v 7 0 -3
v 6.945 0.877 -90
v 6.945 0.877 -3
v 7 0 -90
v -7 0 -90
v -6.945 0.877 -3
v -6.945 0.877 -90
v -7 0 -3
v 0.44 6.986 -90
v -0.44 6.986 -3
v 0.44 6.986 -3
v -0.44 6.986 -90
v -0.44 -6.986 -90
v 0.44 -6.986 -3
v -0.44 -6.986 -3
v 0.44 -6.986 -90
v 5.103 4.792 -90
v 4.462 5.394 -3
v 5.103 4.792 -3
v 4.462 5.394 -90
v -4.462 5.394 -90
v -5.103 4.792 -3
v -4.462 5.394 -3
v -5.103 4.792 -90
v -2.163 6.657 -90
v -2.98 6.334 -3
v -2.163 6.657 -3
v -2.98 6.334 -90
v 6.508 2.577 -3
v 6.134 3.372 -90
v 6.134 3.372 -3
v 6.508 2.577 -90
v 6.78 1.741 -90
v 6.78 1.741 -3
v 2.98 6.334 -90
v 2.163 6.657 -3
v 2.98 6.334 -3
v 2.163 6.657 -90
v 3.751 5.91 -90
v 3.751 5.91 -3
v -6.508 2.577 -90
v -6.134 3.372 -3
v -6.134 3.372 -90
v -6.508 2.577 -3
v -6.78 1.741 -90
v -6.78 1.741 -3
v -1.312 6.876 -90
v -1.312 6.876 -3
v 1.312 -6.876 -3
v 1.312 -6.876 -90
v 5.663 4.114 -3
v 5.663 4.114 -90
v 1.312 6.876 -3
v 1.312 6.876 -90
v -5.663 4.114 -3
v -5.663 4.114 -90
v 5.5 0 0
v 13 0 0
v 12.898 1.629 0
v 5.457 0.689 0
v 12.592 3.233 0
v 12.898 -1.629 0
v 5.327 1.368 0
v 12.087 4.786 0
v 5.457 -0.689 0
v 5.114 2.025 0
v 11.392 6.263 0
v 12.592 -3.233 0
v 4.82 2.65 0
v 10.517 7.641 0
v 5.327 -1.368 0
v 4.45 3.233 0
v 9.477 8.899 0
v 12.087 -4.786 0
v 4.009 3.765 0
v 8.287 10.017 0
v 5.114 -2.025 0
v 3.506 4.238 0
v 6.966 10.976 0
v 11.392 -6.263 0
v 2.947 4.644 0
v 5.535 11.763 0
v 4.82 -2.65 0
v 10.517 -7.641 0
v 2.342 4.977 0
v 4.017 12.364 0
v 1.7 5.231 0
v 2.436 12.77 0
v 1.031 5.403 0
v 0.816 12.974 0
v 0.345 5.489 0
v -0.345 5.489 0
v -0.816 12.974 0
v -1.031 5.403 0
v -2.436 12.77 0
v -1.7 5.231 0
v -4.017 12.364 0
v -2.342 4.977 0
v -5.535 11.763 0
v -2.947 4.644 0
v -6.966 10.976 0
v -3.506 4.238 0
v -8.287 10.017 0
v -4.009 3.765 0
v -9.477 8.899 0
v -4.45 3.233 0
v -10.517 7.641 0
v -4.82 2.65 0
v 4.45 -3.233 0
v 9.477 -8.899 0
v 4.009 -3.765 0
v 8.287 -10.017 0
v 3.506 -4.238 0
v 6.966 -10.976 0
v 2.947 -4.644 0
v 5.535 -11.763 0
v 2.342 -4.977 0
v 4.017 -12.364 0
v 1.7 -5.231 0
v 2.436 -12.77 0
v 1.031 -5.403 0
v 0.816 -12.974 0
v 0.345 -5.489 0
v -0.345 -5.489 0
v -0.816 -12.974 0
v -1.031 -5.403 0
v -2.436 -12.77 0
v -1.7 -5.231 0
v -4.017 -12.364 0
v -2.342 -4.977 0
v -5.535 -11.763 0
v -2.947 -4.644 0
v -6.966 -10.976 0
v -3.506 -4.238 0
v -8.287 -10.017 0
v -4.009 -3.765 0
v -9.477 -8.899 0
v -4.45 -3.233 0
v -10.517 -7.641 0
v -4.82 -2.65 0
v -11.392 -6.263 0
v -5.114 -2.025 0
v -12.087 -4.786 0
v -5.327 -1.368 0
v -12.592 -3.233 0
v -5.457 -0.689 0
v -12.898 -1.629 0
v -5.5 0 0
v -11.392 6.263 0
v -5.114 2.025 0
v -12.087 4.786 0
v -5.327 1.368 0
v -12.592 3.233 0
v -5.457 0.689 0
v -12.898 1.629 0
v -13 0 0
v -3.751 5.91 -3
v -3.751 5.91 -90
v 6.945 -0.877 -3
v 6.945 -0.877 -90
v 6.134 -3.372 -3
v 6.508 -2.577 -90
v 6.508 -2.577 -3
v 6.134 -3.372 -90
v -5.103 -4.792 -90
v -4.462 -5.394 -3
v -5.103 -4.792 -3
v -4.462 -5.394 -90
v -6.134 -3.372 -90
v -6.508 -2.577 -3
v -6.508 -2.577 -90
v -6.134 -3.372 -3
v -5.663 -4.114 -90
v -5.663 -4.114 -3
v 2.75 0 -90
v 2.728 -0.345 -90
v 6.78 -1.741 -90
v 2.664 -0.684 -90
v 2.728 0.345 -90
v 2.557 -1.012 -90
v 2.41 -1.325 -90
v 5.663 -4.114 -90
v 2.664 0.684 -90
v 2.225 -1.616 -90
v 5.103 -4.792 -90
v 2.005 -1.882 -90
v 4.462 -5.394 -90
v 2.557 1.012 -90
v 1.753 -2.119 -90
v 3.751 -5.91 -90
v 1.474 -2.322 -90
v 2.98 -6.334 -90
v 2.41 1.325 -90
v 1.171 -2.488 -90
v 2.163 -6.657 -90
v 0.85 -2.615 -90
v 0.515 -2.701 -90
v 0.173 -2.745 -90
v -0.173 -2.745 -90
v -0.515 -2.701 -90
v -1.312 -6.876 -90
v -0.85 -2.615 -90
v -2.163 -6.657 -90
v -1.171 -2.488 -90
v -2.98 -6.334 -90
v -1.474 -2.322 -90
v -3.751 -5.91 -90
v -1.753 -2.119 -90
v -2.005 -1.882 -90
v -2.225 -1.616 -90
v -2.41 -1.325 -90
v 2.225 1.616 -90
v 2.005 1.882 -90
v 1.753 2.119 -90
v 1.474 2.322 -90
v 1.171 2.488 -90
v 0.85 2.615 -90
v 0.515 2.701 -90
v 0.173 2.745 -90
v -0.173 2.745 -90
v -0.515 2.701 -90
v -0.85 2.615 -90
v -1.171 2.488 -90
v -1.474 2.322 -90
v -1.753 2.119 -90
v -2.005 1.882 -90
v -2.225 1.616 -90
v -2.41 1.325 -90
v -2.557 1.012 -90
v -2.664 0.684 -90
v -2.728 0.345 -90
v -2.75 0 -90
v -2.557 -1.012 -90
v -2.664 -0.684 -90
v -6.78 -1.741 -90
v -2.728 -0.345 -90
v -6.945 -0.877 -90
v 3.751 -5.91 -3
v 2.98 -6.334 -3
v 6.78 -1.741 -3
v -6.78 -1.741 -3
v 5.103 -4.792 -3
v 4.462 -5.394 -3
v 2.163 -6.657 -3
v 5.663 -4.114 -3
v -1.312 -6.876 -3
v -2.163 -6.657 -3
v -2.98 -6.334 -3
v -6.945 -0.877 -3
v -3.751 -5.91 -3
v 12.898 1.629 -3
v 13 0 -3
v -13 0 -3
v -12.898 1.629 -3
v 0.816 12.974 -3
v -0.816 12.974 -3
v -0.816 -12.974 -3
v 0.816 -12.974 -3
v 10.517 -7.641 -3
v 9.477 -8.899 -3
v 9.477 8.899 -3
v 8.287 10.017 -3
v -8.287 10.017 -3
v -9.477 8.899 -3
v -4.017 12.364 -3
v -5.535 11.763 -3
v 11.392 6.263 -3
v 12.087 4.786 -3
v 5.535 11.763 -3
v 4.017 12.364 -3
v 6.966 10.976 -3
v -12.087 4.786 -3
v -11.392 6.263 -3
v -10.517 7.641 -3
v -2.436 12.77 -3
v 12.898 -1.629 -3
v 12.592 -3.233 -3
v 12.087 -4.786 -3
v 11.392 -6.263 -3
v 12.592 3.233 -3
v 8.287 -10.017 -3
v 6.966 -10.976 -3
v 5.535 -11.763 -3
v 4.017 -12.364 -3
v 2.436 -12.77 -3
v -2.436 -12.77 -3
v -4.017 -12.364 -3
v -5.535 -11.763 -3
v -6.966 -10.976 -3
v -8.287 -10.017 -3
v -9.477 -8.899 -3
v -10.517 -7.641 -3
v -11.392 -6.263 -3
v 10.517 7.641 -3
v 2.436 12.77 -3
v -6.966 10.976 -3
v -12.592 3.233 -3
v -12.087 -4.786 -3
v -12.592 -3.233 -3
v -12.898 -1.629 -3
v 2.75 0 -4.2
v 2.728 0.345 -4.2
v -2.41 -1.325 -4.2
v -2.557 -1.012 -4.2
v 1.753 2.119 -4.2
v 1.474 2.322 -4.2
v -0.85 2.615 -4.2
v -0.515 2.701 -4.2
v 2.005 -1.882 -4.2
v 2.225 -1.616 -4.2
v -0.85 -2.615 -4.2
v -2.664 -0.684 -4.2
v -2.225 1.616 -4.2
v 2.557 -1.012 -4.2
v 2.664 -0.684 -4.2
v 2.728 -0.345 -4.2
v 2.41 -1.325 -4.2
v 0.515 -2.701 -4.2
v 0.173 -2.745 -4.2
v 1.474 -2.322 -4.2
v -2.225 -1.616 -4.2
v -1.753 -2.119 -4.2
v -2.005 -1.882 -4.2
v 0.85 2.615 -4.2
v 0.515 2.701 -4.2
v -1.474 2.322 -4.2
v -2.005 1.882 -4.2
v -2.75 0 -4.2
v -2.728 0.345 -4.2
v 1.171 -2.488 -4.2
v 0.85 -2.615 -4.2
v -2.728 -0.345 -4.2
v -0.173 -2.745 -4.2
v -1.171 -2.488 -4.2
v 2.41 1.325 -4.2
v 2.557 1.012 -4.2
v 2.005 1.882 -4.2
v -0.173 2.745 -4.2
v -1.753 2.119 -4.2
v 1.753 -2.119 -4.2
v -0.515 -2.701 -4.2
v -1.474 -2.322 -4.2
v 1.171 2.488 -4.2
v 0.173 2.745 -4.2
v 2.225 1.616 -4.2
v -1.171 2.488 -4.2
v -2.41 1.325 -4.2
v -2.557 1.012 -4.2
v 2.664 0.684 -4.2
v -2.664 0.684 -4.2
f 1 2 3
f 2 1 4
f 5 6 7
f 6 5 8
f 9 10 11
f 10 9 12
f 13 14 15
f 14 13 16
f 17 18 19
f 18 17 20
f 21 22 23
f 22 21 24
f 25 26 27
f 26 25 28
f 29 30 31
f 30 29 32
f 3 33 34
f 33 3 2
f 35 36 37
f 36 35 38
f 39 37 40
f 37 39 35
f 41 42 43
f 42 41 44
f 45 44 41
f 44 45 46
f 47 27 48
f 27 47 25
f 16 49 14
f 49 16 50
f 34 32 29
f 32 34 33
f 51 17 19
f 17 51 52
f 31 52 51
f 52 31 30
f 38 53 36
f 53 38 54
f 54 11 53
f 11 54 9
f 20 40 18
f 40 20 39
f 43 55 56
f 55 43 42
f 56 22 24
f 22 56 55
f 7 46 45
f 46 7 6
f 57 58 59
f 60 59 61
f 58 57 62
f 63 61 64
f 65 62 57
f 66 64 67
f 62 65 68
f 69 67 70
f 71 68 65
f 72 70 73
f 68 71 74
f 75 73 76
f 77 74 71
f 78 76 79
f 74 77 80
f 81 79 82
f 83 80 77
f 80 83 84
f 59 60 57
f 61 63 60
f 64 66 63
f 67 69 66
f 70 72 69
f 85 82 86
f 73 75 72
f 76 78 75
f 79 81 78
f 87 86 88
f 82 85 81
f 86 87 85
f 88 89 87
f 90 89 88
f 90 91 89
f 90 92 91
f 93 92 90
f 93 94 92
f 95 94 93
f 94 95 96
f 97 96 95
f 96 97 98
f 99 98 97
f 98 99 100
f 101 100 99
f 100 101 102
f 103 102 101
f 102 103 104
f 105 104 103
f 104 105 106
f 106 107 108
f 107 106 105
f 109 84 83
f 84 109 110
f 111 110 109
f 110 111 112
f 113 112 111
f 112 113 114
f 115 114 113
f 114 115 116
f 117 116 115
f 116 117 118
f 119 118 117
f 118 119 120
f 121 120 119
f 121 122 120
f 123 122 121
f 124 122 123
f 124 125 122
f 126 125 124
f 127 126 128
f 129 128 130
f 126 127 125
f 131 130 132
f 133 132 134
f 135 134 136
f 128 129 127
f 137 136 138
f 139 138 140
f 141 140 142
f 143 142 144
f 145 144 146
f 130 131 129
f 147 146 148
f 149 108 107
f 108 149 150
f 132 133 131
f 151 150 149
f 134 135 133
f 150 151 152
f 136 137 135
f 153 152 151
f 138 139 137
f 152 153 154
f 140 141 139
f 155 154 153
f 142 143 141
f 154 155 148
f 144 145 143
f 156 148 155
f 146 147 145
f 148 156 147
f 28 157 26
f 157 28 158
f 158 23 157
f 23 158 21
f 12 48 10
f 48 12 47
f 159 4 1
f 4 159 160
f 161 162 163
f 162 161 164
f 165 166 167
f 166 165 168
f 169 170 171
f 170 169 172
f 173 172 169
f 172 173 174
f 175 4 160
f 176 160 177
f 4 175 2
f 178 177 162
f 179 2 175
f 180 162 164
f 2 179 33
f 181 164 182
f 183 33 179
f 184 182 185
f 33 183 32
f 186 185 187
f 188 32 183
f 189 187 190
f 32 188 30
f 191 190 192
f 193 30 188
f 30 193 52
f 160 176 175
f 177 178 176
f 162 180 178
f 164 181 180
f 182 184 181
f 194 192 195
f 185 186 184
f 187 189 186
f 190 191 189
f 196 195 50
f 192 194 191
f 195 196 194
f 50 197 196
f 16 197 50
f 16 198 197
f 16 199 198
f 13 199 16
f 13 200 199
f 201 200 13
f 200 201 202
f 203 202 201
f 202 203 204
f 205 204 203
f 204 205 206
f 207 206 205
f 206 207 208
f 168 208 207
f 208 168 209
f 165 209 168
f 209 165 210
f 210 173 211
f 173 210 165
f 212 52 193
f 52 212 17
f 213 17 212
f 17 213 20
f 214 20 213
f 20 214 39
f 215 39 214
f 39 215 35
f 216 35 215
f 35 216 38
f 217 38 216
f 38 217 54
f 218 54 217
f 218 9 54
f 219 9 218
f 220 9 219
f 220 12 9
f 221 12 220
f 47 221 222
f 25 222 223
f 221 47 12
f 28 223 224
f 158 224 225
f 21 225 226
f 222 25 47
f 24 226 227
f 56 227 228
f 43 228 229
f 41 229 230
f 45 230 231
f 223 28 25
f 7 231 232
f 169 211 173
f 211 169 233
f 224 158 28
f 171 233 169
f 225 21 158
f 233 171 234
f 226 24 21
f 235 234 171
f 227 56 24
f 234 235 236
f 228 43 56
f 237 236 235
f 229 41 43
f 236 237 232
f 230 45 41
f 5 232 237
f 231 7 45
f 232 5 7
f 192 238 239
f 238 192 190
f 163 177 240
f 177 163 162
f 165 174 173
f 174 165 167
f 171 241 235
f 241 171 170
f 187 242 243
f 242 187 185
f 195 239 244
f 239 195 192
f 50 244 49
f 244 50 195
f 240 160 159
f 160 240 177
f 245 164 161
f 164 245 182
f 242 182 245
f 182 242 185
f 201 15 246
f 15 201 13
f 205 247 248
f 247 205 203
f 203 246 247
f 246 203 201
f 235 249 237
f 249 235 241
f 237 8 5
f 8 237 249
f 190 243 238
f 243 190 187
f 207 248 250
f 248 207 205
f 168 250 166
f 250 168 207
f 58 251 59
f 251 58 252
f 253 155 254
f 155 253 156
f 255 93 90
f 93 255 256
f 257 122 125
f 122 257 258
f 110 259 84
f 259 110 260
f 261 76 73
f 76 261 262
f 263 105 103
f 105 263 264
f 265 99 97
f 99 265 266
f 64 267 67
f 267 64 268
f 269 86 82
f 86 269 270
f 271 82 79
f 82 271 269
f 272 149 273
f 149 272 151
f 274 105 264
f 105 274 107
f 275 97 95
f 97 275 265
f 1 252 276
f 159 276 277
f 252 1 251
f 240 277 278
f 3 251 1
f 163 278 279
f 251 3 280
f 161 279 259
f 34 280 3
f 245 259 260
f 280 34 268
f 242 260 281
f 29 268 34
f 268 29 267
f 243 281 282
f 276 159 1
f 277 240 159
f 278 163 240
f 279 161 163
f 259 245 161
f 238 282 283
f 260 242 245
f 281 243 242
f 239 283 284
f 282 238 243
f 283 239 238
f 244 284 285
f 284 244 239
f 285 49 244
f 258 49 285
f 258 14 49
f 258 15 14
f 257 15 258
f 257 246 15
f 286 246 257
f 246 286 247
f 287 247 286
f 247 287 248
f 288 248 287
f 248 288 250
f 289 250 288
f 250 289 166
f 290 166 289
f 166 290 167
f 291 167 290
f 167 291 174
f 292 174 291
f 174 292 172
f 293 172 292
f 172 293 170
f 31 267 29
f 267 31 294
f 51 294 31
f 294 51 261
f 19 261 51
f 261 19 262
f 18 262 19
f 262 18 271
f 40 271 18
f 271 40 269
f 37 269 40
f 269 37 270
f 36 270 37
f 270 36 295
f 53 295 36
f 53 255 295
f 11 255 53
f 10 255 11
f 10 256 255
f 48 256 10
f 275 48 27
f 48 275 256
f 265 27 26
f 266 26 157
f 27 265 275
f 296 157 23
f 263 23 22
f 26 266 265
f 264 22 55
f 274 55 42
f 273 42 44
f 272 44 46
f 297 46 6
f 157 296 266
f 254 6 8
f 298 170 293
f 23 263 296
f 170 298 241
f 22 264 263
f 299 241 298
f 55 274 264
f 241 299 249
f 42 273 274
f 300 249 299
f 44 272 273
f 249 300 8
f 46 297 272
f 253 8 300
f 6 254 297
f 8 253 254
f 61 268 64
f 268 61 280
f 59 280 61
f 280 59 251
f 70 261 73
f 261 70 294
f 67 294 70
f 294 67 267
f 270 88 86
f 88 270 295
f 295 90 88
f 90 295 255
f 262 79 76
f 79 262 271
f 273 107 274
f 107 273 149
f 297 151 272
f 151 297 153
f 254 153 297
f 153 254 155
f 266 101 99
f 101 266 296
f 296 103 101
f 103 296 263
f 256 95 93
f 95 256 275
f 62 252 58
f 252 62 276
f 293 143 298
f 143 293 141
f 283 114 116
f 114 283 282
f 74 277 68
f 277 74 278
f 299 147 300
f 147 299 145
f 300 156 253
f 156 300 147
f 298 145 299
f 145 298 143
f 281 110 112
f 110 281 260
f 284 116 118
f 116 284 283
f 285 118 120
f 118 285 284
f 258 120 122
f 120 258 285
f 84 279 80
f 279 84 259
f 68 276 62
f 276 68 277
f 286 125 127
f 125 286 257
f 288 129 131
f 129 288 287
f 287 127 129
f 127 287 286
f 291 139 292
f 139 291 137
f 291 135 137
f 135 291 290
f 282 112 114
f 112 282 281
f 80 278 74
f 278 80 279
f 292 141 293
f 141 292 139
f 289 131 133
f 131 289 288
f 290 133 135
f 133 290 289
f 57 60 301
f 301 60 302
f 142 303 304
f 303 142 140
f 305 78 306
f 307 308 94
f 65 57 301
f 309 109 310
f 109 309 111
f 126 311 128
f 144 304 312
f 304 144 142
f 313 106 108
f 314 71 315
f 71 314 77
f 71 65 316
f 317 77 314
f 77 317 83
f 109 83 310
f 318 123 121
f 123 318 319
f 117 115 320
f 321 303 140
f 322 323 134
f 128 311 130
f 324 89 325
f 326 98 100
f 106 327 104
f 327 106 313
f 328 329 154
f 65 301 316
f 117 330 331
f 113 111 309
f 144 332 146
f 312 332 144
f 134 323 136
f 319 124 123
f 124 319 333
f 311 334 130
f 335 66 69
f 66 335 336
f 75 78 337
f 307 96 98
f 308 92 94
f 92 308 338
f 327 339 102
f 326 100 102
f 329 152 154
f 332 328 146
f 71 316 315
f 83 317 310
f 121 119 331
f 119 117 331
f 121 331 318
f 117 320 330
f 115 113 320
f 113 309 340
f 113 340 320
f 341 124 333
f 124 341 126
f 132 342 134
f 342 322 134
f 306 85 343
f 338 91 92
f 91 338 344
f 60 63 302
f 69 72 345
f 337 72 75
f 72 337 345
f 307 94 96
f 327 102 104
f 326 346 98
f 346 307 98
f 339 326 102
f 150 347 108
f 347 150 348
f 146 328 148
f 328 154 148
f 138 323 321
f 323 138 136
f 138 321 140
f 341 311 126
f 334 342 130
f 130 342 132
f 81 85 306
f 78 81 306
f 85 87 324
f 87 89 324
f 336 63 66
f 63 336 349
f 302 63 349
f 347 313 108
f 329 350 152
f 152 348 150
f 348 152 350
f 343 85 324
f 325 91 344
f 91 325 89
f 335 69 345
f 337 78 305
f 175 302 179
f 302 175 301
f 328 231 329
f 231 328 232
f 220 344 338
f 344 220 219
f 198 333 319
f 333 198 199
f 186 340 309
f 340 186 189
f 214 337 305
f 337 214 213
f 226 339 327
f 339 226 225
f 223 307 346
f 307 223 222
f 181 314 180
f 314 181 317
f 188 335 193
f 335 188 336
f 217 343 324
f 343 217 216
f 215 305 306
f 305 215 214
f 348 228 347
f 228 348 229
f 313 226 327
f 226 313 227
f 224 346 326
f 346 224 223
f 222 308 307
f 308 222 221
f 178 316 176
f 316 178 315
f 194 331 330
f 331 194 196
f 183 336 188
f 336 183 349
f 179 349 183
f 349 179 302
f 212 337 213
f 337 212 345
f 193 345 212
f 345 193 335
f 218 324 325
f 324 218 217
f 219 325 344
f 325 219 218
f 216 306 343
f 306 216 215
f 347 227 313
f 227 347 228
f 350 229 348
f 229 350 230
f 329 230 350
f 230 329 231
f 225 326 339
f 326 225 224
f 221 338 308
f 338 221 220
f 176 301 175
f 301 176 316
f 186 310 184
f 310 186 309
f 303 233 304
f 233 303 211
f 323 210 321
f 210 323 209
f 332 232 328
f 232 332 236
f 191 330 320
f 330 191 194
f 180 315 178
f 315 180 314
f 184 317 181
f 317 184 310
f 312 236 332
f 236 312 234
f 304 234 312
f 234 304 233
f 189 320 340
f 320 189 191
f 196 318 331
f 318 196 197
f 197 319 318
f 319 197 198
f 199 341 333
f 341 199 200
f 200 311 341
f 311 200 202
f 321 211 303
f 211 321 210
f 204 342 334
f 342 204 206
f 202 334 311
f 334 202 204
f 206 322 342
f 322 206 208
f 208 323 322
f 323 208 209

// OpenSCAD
$fn = 50;


difference() {
	union() {
		translate(v = [0, 0, -90.0000000000]) {
			cylinder(h = 90, r = 7.0000000000);
		}
		translate(v = [0, 0, -3.0000000000]) {
			cylinder(h = 3, r = 13.0000000000);
		}
	}
	union() {
		translate(v = [0, 0, 0]) {
			rotate(a = [0, 0, 0]) {
				difference() {
					union() {
						#translate(v = [0, 0, -90.0000000000]) {
							cylinder(h = 90, r = 2.2500000000);
						}
						#translate(v = [0, 0, -4.2000000000]) {
							cylinder(h = 4.2000000000, r1 = 2.7500000000, r2 = 5.5000000000);
						}
						#translate(v = [0, 0, -90.0000000000]) {
							cylinder(h = 90, r = 2.7500000000);
						}
						#translate(v = [0, 0, -90.0000000000]) {
							cylinder(h = 90, r = 2.2500000000);
						}
					}
					union();
				}
			}
		}
	}
}
